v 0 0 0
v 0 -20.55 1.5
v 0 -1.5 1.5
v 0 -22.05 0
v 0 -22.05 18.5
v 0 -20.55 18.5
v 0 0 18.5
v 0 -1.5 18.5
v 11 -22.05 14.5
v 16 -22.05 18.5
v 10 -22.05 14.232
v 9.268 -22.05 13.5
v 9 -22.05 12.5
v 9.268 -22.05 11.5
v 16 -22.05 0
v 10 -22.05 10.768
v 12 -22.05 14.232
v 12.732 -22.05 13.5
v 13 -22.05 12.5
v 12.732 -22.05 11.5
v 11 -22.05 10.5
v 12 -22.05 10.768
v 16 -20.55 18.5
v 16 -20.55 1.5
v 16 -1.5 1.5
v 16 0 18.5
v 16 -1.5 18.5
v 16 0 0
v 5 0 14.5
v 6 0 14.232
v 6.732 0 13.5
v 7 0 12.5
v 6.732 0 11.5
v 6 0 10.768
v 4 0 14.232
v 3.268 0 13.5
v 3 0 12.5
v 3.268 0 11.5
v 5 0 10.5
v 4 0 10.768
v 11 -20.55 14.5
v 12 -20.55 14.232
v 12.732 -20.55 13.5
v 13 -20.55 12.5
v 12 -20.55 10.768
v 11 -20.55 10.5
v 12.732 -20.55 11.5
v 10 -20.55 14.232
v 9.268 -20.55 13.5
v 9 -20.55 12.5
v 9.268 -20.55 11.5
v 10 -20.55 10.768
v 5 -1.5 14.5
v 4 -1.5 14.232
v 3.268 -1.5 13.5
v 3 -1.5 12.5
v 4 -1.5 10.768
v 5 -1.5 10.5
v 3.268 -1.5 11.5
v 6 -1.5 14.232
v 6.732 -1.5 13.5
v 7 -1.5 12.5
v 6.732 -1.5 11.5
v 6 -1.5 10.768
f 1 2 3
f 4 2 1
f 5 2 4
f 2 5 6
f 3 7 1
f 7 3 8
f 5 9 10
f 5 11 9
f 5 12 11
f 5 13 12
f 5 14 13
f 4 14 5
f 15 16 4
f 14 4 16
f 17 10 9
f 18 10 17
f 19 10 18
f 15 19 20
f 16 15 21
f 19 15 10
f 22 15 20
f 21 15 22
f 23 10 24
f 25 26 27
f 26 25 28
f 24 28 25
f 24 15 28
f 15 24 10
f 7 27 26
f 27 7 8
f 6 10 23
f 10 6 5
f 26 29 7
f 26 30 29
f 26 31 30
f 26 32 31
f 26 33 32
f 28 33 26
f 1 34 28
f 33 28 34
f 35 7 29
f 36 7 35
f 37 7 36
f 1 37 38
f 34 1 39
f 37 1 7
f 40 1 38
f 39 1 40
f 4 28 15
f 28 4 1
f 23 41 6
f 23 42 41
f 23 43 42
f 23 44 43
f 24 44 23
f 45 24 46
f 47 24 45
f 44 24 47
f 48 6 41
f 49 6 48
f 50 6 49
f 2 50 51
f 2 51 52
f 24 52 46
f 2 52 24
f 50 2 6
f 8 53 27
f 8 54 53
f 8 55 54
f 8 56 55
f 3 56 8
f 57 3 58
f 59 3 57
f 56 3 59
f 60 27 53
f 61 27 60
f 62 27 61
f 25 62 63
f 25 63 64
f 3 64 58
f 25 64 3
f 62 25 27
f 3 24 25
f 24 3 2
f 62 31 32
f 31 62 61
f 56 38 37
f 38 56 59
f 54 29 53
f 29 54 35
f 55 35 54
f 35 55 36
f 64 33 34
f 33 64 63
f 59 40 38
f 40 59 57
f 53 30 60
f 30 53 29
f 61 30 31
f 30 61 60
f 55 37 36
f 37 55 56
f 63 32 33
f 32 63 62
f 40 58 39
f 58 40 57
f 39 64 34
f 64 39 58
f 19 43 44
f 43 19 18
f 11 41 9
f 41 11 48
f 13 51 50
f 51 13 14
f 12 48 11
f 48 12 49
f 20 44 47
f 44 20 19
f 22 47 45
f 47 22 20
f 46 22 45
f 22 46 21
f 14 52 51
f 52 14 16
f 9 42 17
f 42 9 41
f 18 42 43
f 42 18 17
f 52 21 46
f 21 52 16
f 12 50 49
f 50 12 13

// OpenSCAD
tieThickness = 1.5;
tieWidth = 16;
materialThickness = 25.4*.75;
screwHole = 4;
wireThickness = 5;
margin = 4;

d = wireThickness+2*margin+screwHole+tieThickness;
h = tieThickness*2+materialThickness;
w = tieWidth;
nudge = 0.01;

rotate([90,0,0])
difference() {
    cube([w,d,h]);
    translate([-nudge,tieThickness,tieThickness])
    cube([w+2*nudge,d,materialThickness]);
    translate([w/2-screwHole/2-1,wireThickness+tieThickness+screwHole/2+margin,-nudge])
    cylinder(d=screwHole,h=tieThickness+2*nudge,$fn=12);
    translate([w/2+screwHole/2+1,wireThickness+tieThickness+screwHole/2+margin,h-tieThickness-nudge])
    cylinder(d=screwHole,h=tieThickness+2*nudge,$fn=12);
}
